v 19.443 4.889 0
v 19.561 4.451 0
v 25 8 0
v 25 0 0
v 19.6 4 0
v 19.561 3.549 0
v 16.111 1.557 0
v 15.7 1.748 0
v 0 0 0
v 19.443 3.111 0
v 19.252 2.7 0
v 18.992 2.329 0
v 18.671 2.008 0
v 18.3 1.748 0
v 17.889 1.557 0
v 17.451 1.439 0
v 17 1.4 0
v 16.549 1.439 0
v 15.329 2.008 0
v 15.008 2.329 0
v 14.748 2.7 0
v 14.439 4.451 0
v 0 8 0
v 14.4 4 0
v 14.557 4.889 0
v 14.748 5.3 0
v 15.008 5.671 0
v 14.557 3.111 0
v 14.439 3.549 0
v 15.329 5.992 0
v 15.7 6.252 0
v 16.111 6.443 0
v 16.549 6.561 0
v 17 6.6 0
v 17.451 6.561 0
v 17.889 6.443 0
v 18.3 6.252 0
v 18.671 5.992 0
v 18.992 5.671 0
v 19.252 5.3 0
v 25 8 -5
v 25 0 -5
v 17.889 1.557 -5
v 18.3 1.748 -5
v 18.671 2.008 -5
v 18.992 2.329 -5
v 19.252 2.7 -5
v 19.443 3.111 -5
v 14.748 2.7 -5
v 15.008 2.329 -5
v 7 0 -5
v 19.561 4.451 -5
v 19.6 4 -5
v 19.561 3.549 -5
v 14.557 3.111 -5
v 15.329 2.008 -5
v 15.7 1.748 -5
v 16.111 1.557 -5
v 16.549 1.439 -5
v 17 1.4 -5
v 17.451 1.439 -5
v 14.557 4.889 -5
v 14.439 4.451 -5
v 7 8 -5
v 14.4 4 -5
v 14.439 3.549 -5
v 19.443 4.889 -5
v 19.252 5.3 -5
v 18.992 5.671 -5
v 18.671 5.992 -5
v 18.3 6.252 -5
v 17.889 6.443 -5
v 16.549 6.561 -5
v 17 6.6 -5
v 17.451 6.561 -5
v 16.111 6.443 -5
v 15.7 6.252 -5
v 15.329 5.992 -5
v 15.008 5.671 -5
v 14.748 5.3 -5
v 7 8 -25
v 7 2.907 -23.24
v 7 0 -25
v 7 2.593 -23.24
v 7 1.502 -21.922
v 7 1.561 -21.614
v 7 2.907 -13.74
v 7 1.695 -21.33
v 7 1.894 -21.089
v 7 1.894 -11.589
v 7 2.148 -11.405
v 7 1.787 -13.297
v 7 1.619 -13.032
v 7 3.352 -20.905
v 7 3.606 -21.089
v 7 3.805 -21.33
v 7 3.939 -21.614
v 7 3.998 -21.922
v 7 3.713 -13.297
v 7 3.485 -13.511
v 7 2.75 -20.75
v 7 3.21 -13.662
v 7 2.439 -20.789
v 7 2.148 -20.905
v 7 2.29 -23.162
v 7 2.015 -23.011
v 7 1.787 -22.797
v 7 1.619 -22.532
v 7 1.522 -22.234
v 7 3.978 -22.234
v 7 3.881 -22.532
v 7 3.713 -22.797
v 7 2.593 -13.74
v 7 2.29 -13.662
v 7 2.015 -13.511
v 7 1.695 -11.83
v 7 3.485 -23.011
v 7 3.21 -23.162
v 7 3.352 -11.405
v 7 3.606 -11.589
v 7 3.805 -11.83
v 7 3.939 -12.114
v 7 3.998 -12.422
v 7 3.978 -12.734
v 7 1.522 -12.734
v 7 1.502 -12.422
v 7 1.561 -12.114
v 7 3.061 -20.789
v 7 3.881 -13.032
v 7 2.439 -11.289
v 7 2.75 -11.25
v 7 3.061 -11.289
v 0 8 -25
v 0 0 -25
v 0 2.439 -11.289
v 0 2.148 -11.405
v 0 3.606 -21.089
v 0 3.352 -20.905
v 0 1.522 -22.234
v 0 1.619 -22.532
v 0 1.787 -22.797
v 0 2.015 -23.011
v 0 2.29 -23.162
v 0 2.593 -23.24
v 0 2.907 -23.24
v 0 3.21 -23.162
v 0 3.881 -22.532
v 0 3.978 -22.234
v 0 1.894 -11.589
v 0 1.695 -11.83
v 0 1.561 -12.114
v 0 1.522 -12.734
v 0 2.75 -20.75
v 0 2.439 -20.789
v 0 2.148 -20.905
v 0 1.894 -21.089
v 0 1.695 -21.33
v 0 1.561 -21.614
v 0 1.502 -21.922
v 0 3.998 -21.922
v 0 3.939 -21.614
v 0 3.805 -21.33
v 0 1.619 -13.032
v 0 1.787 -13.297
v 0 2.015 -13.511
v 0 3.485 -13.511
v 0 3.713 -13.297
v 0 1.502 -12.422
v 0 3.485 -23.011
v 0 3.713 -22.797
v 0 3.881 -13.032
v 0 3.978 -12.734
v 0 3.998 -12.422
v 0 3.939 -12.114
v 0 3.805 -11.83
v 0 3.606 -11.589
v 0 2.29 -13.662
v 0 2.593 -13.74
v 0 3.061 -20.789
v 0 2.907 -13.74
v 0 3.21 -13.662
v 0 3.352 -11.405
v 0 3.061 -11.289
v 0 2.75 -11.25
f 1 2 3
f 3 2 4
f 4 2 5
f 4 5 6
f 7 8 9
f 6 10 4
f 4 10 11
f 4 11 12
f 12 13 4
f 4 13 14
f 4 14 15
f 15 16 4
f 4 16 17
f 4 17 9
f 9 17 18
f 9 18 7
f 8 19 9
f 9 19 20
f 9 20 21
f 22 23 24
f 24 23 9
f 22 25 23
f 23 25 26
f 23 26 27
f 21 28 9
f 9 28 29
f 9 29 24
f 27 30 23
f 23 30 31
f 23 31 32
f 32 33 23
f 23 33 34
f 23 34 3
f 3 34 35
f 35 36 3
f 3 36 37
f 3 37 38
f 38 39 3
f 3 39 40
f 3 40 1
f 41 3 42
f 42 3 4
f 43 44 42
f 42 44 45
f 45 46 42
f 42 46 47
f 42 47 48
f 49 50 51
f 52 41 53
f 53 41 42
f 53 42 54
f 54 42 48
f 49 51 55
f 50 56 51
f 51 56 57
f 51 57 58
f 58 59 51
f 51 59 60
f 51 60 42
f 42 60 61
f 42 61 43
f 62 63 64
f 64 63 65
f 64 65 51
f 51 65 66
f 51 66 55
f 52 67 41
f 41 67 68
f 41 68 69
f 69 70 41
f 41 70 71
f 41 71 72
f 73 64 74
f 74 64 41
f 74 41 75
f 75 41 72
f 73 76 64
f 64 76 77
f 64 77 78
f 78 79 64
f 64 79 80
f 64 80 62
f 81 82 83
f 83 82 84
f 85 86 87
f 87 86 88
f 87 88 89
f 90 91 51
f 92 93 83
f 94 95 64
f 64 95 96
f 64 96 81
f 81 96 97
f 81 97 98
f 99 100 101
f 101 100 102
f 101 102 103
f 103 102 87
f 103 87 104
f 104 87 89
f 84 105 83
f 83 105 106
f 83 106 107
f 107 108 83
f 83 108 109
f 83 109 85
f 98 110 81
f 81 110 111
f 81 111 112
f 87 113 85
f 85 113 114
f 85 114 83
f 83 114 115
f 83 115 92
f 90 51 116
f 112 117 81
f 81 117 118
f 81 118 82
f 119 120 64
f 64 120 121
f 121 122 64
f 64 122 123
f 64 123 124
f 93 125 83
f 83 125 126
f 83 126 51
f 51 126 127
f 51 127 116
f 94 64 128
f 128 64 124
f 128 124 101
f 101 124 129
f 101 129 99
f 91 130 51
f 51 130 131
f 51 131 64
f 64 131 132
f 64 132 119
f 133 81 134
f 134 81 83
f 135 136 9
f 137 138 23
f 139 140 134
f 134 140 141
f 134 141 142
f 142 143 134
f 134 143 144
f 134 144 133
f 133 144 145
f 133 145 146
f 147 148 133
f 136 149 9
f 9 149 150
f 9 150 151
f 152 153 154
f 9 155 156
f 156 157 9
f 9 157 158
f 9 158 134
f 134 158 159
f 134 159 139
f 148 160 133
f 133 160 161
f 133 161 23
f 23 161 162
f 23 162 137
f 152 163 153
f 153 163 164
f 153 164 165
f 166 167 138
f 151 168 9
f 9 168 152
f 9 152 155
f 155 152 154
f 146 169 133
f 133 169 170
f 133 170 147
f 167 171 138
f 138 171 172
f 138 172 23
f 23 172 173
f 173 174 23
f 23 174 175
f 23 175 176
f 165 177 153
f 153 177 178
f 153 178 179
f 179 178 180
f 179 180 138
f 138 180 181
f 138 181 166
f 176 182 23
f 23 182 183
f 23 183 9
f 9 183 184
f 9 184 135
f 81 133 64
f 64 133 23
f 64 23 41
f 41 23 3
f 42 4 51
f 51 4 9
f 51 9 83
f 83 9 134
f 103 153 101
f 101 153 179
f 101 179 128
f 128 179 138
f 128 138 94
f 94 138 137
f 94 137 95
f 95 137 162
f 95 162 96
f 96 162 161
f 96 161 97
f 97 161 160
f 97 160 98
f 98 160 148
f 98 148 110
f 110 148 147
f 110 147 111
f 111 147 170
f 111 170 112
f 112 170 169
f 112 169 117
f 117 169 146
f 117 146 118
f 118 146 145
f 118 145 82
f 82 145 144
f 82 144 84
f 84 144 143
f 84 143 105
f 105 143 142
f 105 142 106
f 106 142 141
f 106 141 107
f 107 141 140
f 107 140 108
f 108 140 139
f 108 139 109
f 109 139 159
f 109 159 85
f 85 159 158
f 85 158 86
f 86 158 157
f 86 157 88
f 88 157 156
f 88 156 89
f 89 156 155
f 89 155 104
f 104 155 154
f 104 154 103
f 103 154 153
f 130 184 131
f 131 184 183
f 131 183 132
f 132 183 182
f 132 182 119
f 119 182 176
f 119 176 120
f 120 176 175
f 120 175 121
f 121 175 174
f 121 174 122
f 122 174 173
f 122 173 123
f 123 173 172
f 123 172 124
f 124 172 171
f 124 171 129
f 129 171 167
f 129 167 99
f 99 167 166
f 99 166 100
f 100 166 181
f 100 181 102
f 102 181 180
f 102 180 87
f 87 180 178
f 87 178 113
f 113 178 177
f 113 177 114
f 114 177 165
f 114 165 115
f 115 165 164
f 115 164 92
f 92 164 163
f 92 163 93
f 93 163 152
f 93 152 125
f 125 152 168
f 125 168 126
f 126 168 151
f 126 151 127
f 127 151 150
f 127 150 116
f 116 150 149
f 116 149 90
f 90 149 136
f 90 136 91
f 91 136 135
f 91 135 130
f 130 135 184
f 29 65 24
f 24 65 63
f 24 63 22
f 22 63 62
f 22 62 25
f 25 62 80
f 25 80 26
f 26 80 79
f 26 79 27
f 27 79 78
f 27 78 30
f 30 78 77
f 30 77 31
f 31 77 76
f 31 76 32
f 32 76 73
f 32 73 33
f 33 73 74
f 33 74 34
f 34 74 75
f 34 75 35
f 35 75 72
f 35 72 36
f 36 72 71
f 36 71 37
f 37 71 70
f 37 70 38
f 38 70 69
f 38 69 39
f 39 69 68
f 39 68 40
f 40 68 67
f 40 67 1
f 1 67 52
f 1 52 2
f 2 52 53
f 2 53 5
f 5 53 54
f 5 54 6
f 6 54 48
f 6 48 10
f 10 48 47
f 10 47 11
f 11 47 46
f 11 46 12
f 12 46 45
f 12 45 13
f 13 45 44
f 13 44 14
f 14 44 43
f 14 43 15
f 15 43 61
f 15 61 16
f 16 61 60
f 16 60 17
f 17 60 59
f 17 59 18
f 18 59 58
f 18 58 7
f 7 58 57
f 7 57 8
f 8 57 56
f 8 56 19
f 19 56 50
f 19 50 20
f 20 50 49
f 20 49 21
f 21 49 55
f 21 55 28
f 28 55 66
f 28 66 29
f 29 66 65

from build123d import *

# Parameters (mm, degrees)
BOSS_EXTRUDE1_DEPTH = 8
CUT_EXTRUDE1_REACH  = 27
SKETCH2_R           = 1.25
CUT_EXTRUDE2_REACH  = 7
SKETCH4_R           = 2.6


with BuildPart() as part:
    # Sketch1 → Boss-Extrude1 (new body)
    with BuildSketch(Plane(origin=(0, 0, 0), x_dir=(1, 0, 0), z_dir=(0, 1, 0))):
        Polygon((0, 0), (0, 25), (7, 25), (7, 5), (25, 5), (25, 0), align=None)
    extrude(amount=BOSS_EXTRUDE1_DEPTH)

    # Sketch2 → Cut-Extrude1 (cut, up to next)
    with BuildSketch(Plane.ZY, mode=Mode.PRIVATE) as cut_extrude1_sk1:
        with Locations((-22, 2.75)):
            Circle(SKETCH2_R)
    cut_extrude1_tool1 = extrude(cut_extrude1_sk1.sketch, amount=-CUT_EXTRUDE1_REACH, mode=Mode.PRIVATE) & part.part
    add(cut_extrude1_tool1.solids().sort_by_distance((0, 2.75, -22))[0], mode=Mode.SUBTRACT)
    # Sketch2 → Cut-Extrude1 (cut, up to next)
    with BuildSketch(Plane.ZY, mode=Mode.PRIVATE) as cut_extrude1_sk2:
        with Locations((-12.5, 2.75)):
            Circle(SKETCH2_R)
    cut_extrude1_tool2 = extrude(cut_extrude1_sk2.sketch, amount=-CUT_EXTRUDE1_REACH, mode=Mode.PRIVATE) & part.part
    add(cut_extrude1_tool2.solids().sort_by_distance((0, 2.75, -12.5))[0], mode=Mode.SUBTRACT)

    # Sketch4 → Cut-Extrude2 (cut, up to next)
    with BuildSketch(Plane(origin=(0, 0, -5), x_dir=(-1, 0, 0), z_dir=(0, 0, -1)), mode=Mode.PRIVATE) as cut_extrude2_sk1:
        with Locations((-17, 4)):
            Circle(SKETCH4_R)
    cut_extrude2_tool1 = extrude(cut_extrude2_sk1.sketch, amount=-CUT_EXTRUDE2_REACH, mode=Mode.PRIVATE) & part.part
    add(cut_extrude2_tool1.solids().sort_by_distance((17, 4, -5))[0], mode=Mode.SUBTRACT)


solid = part.part
